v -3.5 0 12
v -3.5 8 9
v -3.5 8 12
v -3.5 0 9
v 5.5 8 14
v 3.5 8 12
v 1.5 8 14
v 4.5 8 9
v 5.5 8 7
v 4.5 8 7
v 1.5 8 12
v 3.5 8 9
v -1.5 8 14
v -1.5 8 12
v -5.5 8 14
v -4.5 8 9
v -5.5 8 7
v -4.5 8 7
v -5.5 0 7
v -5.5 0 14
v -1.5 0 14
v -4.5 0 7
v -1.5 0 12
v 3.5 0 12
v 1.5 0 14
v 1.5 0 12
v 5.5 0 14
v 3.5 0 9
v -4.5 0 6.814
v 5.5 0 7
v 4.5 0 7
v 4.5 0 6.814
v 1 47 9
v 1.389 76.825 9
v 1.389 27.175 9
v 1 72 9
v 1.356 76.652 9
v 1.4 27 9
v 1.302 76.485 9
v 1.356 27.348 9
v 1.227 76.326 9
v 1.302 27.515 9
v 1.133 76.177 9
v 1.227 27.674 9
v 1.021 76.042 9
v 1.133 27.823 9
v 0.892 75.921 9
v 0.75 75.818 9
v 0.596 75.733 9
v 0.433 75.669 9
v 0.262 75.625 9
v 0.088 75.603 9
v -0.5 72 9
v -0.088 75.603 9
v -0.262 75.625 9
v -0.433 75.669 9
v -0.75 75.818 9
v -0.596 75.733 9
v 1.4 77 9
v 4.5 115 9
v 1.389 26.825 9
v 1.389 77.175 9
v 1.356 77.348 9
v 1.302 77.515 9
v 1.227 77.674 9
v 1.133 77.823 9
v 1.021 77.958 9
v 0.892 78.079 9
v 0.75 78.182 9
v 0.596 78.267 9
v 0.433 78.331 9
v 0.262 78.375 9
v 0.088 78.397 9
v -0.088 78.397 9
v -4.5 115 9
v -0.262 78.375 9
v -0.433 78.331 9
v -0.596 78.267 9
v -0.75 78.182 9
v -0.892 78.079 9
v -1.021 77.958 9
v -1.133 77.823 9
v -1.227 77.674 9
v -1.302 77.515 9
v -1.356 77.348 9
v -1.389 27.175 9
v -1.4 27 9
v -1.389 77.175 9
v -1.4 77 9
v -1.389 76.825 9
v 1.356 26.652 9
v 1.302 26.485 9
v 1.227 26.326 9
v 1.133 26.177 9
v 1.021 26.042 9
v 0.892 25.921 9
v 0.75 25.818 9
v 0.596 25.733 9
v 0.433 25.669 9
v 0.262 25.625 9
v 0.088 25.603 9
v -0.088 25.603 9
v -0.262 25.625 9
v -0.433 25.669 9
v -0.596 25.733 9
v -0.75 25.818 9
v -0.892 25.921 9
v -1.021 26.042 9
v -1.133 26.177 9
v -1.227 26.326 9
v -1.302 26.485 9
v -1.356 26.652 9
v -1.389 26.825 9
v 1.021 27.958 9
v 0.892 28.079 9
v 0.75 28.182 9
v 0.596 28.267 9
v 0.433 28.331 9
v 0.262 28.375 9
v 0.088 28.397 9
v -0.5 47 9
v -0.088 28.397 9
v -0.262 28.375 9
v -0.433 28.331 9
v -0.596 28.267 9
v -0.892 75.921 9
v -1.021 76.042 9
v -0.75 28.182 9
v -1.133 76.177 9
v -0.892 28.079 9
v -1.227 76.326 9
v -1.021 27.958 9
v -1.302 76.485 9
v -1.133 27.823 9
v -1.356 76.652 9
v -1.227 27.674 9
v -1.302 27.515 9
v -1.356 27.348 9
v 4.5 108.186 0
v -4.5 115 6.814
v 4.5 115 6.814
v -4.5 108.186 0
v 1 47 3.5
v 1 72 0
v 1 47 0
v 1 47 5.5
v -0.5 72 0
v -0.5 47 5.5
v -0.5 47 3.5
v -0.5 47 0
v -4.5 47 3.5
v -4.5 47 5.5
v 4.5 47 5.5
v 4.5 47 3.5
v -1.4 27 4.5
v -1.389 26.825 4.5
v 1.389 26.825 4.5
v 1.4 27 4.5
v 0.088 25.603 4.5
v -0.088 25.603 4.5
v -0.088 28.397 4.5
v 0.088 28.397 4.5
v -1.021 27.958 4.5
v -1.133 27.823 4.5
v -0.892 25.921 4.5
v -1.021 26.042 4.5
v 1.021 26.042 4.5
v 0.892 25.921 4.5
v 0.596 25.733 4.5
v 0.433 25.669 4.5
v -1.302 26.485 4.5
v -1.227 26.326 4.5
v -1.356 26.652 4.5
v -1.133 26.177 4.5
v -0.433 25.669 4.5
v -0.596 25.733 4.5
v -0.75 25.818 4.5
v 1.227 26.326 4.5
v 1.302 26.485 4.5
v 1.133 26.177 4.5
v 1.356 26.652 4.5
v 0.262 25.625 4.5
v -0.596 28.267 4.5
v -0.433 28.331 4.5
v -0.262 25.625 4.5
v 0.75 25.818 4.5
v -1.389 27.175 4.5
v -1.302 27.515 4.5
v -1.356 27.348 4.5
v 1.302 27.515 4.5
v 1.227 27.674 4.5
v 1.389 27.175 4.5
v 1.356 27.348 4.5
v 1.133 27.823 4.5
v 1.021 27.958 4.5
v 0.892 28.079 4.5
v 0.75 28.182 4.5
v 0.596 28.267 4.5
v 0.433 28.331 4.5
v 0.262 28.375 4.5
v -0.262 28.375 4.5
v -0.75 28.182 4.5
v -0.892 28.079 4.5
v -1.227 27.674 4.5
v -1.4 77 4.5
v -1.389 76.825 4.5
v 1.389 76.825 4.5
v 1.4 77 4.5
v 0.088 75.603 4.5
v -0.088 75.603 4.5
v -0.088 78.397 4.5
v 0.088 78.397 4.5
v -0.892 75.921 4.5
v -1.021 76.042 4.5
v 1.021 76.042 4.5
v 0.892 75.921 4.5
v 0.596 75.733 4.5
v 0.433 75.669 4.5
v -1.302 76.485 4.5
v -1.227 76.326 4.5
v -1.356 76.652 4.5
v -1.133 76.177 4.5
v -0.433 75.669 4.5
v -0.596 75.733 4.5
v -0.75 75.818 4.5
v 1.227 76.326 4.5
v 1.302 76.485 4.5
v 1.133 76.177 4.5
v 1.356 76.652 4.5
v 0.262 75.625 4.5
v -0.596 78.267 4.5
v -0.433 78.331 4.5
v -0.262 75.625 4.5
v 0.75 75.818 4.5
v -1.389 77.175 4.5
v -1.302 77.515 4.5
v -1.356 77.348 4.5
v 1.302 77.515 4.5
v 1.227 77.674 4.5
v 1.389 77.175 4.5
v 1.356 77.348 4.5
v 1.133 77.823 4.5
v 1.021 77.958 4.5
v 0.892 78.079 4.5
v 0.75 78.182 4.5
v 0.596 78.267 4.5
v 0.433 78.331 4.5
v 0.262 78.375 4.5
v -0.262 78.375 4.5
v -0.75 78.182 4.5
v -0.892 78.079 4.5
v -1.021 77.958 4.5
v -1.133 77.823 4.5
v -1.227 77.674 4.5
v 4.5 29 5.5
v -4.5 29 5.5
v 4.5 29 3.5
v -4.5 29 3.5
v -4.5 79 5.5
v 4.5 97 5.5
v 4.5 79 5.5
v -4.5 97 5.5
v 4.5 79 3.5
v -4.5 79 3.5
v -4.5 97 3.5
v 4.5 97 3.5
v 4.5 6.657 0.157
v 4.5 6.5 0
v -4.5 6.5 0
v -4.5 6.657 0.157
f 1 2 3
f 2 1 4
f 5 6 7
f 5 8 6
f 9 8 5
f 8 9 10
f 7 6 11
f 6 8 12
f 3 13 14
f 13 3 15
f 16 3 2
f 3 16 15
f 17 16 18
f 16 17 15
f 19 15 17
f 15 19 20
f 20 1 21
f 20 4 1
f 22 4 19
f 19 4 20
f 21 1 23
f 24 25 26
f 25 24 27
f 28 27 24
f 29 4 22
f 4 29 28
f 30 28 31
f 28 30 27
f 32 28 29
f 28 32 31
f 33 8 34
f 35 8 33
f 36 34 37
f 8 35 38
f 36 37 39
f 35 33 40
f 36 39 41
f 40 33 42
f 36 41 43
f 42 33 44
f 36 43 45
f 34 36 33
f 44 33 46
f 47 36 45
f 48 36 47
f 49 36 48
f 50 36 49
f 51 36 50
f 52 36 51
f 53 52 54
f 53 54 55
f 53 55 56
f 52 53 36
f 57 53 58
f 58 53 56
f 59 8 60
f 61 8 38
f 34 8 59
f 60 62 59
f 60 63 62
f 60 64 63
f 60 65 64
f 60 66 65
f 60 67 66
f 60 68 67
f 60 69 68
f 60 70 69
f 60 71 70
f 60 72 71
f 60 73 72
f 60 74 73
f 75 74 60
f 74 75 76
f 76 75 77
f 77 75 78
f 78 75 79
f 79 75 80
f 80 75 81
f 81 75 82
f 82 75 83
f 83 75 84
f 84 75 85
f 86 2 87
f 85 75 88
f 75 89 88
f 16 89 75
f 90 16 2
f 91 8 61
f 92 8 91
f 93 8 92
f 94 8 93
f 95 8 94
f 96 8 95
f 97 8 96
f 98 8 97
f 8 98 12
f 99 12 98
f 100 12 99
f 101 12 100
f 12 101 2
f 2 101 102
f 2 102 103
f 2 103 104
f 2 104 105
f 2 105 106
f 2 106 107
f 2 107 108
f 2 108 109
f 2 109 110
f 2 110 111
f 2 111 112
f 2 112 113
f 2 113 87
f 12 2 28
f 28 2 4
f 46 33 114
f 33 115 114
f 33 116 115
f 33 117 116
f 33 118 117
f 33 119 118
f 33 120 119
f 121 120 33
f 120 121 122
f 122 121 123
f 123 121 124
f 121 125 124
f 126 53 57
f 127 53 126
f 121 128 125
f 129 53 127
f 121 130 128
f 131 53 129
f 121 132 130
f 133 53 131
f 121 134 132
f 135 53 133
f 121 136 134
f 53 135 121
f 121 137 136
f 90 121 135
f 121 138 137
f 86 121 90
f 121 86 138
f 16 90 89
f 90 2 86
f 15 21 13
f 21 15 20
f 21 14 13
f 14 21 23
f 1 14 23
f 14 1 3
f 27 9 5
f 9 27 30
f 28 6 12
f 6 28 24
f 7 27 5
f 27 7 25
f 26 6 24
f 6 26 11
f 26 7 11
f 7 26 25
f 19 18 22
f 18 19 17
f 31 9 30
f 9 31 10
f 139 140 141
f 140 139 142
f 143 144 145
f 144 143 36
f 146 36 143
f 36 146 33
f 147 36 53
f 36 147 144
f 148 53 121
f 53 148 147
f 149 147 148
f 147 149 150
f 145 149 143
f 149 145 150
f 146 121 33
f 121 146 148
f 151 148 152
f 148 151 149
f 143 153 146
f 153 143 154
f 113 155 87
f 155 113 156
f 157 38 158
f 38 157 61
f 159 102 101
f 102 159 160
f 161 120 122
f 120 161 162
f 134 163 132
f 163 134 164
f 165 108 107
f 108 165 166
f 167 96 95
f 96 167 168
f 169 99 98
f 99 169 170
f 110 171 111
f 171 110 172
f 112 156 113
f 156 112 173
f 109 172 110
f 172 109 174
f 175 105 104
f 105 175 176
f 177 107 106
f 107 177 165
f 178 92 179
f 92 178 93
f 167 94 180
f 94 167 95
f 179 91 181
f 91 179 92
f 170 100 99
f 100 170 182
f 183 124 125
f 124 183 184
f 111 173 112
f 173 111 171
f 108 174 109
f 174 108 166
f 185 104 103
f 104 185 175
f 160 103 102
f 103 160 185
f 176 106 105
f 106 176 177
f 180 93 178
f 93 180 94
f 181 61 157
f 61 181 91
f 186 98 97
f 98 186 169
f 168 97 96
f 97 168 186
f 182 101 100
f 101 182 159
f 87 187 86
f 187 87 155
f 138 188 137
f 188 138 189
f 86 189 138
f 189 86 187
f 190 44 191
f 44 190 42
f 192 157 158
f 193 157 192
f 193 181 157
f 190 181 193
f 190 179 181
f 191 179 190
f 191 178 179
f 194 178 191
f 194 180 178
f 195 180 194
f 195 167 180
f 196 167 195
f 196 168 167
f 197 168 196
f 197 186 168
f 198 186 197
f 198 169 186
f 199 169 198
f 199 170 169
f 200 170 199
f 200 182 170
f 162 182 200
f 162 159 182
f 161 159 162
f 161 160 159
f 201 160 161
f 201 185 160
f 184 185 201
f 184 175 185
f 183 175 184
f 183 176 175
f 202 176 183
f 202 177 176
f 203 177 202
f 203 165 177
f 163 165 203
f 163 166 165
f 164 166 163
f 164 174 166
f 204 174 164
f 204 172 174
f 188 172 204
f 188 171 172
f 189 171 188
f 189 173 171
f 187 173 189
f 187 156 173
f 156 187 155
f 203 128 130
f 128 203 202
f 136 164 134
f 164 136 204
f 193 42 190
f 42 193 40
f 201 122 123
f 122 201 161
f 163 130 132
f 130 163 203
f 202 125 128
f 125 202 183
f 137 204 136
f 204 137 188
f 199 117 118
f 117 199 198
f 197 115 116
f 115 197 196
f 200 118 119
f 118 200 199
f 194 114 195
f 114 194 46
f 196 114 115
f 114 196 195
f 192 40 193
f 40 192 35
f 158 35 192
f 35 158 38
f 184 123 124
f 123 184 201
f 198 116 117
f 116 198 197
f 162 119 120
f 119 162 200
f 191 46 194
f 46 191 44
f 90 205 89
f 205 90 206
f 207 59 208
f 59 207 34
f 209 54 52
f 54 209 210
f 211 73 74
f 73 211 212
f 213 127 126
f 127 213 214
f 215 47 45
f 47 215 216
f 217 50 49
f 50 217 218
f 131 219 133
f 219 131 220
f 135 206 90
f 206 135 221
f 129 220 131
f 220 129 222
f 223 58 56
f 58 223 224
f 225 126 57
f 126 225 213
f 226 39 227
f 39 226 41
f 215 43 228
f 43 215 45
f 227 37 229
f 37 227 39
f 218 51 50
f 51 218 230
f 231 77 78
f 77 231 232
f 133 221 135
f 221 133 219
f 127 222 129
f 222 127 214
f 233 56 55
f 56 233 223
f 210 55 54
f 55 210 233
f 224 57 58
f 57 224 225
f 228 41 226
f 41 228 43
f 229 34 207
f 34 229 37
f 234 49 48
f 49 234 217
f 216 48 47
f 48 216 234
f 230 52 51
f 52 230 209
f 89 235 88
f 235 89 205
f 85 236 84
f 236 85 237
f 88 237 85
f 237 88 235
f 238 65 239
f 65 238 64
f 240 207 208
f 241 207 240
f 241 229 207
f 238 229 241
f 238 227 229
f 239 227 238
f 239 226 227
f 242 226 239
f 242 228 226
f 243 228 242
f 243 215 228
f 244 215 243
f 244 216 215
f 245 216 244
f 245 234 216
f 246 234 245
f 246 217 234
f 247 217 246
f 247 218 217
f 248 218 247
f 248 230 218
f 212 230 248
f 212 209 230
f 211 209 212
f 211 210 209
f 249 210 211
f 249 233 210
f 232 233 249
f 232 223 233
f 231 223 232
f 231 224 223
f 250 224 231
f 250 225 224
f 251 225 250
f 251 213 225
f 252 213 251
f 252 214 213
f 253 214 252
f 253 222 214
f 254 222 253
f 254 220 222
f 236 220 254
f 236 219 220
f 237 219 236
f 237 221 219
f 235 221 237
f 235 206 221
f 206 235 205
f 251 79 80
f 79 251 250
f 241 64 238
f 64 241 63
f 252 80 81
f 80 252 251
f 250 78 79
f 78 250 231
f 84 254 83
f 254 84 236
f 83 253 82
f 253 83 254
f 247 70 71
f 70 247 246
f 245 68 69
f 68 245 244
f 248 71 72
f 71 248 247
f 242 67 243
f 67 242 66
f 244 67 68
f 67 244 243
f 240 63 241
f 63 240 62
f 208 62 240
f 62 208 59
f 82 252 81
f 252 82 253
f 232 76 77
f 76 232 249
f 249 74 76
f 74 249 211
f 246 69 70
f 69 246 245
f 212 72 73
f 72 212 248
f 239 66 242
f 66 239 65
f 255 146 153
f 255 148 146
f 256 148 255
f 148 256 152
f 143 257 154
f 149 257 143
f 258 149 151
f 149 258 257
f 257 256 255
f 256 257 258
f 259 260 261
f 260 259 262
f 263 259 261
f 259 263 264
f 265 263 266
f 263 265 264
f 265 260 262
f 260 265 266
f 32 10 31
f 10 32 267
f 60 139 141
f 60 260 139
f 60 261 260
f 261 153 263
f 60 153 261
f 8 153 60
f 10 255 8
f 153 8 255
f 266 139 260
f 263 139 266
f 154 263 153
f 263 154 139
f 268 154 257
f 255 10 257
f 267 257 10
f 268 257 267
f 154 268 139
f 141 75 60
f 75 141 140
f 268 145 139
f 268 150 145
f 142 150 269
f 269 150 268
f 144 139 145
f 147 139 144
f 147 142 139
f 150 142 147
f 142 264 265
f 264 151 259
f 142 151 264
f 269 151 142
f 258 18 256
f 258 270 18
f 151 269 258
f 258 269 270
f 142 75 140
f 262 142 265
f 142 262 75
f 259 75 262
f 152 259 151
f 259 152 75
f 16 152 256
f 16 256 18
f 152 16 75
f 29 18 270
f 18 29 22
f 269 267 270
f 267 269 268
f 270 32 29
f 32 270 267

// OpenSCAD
$fn=50;

KEEL_W=9.0;
KEEL_H=9.0;
KEEL_L=115;

module cable_clamp(y_position) {
    translate([1.5, y_position, 4.5]) {
        rotate([90, 0, 0]) {
            union() {
                // Vertical arm of the C-clamp 2
                translate([2.0, 0, 0]) cube([2, 5, 8]);
                // Horizontal arm of the C-clamp
                rotate([90, 0, 0])
                translate([0, 0, -5]) cube([2, 8, 2]);
                // Vertical arm of the C-clamp 1
                translate([-7, 0, 0]) cube([2, 5, 8]);
                // Horizontal arm of the C-clamp
                rotate([90, 0, 0])
                translate([-5.0, 0,-5]) cube([2, 8, 2]);
                // clamp bed
                rotate([90, 0, 0])
                translate([-7.0, 0,-0]) cube([11, 8, 2]);
            }
        }
    }
}

module cutout_group(y_position) {
    translate([0, y_position, 0]) {
        
        // front of keel slope
        translate([-5, -KEEL_L-1, -3])
        rotate([-45, 0, 0])
        //(x, z, y)
        cube([10, 11, 8]); 

        //center cutout - vent
        translate([-1.0, -42.0, -5.0])
        rotate([90,0,0])
        //y, z, x
        cube([1.5, 10, 25]);

        // screw holes
        translate([0, -22, 0]) cylinder(h=5, d=2.8); 
        translate([0.0, -72, 0]) cylinder(h=5, d=2.8);   

        // thru slots for straps
        translate([-7.0, -42,-1]) cube([14, 18, 2]);       
        translate([-7.0, -92,-1]) cube([14, 18, 2]);
        
    }
}

// translate and rotate so model starts at 0, 0, 0
// someone tell me why this has to be done by hand?
translate([0, 0, KEEL_H/2]) {
    rotate([180, 180, 0]) { // Flipping the entire object along the Y axis
        difference() {
            union() {           
                // keel
                rotate([90,0,0])
                linear_extrude(KEEL_L) square([KEEL_W, KEEL_H], center=true); 
                // cable clamp
                cable_clamp(0);
                // measuring posts
                //translate([0,  MOUNT_HOLE_OFFSET+15, 0]) cylinder(h=7, d=1.0);            
                //translate([0, MOUNT_HOLE_OFFSET+30, 0]) cylinder(h=7, d=1.0);
            }
            
            cutout_group(-5);
            
            // rear of keel slope
            translate([-5, -1, -10])
            rotate([45, 0, 0])
            //(x, z, y)
            cube([10, 11, 8]);  
        }
    }
}
